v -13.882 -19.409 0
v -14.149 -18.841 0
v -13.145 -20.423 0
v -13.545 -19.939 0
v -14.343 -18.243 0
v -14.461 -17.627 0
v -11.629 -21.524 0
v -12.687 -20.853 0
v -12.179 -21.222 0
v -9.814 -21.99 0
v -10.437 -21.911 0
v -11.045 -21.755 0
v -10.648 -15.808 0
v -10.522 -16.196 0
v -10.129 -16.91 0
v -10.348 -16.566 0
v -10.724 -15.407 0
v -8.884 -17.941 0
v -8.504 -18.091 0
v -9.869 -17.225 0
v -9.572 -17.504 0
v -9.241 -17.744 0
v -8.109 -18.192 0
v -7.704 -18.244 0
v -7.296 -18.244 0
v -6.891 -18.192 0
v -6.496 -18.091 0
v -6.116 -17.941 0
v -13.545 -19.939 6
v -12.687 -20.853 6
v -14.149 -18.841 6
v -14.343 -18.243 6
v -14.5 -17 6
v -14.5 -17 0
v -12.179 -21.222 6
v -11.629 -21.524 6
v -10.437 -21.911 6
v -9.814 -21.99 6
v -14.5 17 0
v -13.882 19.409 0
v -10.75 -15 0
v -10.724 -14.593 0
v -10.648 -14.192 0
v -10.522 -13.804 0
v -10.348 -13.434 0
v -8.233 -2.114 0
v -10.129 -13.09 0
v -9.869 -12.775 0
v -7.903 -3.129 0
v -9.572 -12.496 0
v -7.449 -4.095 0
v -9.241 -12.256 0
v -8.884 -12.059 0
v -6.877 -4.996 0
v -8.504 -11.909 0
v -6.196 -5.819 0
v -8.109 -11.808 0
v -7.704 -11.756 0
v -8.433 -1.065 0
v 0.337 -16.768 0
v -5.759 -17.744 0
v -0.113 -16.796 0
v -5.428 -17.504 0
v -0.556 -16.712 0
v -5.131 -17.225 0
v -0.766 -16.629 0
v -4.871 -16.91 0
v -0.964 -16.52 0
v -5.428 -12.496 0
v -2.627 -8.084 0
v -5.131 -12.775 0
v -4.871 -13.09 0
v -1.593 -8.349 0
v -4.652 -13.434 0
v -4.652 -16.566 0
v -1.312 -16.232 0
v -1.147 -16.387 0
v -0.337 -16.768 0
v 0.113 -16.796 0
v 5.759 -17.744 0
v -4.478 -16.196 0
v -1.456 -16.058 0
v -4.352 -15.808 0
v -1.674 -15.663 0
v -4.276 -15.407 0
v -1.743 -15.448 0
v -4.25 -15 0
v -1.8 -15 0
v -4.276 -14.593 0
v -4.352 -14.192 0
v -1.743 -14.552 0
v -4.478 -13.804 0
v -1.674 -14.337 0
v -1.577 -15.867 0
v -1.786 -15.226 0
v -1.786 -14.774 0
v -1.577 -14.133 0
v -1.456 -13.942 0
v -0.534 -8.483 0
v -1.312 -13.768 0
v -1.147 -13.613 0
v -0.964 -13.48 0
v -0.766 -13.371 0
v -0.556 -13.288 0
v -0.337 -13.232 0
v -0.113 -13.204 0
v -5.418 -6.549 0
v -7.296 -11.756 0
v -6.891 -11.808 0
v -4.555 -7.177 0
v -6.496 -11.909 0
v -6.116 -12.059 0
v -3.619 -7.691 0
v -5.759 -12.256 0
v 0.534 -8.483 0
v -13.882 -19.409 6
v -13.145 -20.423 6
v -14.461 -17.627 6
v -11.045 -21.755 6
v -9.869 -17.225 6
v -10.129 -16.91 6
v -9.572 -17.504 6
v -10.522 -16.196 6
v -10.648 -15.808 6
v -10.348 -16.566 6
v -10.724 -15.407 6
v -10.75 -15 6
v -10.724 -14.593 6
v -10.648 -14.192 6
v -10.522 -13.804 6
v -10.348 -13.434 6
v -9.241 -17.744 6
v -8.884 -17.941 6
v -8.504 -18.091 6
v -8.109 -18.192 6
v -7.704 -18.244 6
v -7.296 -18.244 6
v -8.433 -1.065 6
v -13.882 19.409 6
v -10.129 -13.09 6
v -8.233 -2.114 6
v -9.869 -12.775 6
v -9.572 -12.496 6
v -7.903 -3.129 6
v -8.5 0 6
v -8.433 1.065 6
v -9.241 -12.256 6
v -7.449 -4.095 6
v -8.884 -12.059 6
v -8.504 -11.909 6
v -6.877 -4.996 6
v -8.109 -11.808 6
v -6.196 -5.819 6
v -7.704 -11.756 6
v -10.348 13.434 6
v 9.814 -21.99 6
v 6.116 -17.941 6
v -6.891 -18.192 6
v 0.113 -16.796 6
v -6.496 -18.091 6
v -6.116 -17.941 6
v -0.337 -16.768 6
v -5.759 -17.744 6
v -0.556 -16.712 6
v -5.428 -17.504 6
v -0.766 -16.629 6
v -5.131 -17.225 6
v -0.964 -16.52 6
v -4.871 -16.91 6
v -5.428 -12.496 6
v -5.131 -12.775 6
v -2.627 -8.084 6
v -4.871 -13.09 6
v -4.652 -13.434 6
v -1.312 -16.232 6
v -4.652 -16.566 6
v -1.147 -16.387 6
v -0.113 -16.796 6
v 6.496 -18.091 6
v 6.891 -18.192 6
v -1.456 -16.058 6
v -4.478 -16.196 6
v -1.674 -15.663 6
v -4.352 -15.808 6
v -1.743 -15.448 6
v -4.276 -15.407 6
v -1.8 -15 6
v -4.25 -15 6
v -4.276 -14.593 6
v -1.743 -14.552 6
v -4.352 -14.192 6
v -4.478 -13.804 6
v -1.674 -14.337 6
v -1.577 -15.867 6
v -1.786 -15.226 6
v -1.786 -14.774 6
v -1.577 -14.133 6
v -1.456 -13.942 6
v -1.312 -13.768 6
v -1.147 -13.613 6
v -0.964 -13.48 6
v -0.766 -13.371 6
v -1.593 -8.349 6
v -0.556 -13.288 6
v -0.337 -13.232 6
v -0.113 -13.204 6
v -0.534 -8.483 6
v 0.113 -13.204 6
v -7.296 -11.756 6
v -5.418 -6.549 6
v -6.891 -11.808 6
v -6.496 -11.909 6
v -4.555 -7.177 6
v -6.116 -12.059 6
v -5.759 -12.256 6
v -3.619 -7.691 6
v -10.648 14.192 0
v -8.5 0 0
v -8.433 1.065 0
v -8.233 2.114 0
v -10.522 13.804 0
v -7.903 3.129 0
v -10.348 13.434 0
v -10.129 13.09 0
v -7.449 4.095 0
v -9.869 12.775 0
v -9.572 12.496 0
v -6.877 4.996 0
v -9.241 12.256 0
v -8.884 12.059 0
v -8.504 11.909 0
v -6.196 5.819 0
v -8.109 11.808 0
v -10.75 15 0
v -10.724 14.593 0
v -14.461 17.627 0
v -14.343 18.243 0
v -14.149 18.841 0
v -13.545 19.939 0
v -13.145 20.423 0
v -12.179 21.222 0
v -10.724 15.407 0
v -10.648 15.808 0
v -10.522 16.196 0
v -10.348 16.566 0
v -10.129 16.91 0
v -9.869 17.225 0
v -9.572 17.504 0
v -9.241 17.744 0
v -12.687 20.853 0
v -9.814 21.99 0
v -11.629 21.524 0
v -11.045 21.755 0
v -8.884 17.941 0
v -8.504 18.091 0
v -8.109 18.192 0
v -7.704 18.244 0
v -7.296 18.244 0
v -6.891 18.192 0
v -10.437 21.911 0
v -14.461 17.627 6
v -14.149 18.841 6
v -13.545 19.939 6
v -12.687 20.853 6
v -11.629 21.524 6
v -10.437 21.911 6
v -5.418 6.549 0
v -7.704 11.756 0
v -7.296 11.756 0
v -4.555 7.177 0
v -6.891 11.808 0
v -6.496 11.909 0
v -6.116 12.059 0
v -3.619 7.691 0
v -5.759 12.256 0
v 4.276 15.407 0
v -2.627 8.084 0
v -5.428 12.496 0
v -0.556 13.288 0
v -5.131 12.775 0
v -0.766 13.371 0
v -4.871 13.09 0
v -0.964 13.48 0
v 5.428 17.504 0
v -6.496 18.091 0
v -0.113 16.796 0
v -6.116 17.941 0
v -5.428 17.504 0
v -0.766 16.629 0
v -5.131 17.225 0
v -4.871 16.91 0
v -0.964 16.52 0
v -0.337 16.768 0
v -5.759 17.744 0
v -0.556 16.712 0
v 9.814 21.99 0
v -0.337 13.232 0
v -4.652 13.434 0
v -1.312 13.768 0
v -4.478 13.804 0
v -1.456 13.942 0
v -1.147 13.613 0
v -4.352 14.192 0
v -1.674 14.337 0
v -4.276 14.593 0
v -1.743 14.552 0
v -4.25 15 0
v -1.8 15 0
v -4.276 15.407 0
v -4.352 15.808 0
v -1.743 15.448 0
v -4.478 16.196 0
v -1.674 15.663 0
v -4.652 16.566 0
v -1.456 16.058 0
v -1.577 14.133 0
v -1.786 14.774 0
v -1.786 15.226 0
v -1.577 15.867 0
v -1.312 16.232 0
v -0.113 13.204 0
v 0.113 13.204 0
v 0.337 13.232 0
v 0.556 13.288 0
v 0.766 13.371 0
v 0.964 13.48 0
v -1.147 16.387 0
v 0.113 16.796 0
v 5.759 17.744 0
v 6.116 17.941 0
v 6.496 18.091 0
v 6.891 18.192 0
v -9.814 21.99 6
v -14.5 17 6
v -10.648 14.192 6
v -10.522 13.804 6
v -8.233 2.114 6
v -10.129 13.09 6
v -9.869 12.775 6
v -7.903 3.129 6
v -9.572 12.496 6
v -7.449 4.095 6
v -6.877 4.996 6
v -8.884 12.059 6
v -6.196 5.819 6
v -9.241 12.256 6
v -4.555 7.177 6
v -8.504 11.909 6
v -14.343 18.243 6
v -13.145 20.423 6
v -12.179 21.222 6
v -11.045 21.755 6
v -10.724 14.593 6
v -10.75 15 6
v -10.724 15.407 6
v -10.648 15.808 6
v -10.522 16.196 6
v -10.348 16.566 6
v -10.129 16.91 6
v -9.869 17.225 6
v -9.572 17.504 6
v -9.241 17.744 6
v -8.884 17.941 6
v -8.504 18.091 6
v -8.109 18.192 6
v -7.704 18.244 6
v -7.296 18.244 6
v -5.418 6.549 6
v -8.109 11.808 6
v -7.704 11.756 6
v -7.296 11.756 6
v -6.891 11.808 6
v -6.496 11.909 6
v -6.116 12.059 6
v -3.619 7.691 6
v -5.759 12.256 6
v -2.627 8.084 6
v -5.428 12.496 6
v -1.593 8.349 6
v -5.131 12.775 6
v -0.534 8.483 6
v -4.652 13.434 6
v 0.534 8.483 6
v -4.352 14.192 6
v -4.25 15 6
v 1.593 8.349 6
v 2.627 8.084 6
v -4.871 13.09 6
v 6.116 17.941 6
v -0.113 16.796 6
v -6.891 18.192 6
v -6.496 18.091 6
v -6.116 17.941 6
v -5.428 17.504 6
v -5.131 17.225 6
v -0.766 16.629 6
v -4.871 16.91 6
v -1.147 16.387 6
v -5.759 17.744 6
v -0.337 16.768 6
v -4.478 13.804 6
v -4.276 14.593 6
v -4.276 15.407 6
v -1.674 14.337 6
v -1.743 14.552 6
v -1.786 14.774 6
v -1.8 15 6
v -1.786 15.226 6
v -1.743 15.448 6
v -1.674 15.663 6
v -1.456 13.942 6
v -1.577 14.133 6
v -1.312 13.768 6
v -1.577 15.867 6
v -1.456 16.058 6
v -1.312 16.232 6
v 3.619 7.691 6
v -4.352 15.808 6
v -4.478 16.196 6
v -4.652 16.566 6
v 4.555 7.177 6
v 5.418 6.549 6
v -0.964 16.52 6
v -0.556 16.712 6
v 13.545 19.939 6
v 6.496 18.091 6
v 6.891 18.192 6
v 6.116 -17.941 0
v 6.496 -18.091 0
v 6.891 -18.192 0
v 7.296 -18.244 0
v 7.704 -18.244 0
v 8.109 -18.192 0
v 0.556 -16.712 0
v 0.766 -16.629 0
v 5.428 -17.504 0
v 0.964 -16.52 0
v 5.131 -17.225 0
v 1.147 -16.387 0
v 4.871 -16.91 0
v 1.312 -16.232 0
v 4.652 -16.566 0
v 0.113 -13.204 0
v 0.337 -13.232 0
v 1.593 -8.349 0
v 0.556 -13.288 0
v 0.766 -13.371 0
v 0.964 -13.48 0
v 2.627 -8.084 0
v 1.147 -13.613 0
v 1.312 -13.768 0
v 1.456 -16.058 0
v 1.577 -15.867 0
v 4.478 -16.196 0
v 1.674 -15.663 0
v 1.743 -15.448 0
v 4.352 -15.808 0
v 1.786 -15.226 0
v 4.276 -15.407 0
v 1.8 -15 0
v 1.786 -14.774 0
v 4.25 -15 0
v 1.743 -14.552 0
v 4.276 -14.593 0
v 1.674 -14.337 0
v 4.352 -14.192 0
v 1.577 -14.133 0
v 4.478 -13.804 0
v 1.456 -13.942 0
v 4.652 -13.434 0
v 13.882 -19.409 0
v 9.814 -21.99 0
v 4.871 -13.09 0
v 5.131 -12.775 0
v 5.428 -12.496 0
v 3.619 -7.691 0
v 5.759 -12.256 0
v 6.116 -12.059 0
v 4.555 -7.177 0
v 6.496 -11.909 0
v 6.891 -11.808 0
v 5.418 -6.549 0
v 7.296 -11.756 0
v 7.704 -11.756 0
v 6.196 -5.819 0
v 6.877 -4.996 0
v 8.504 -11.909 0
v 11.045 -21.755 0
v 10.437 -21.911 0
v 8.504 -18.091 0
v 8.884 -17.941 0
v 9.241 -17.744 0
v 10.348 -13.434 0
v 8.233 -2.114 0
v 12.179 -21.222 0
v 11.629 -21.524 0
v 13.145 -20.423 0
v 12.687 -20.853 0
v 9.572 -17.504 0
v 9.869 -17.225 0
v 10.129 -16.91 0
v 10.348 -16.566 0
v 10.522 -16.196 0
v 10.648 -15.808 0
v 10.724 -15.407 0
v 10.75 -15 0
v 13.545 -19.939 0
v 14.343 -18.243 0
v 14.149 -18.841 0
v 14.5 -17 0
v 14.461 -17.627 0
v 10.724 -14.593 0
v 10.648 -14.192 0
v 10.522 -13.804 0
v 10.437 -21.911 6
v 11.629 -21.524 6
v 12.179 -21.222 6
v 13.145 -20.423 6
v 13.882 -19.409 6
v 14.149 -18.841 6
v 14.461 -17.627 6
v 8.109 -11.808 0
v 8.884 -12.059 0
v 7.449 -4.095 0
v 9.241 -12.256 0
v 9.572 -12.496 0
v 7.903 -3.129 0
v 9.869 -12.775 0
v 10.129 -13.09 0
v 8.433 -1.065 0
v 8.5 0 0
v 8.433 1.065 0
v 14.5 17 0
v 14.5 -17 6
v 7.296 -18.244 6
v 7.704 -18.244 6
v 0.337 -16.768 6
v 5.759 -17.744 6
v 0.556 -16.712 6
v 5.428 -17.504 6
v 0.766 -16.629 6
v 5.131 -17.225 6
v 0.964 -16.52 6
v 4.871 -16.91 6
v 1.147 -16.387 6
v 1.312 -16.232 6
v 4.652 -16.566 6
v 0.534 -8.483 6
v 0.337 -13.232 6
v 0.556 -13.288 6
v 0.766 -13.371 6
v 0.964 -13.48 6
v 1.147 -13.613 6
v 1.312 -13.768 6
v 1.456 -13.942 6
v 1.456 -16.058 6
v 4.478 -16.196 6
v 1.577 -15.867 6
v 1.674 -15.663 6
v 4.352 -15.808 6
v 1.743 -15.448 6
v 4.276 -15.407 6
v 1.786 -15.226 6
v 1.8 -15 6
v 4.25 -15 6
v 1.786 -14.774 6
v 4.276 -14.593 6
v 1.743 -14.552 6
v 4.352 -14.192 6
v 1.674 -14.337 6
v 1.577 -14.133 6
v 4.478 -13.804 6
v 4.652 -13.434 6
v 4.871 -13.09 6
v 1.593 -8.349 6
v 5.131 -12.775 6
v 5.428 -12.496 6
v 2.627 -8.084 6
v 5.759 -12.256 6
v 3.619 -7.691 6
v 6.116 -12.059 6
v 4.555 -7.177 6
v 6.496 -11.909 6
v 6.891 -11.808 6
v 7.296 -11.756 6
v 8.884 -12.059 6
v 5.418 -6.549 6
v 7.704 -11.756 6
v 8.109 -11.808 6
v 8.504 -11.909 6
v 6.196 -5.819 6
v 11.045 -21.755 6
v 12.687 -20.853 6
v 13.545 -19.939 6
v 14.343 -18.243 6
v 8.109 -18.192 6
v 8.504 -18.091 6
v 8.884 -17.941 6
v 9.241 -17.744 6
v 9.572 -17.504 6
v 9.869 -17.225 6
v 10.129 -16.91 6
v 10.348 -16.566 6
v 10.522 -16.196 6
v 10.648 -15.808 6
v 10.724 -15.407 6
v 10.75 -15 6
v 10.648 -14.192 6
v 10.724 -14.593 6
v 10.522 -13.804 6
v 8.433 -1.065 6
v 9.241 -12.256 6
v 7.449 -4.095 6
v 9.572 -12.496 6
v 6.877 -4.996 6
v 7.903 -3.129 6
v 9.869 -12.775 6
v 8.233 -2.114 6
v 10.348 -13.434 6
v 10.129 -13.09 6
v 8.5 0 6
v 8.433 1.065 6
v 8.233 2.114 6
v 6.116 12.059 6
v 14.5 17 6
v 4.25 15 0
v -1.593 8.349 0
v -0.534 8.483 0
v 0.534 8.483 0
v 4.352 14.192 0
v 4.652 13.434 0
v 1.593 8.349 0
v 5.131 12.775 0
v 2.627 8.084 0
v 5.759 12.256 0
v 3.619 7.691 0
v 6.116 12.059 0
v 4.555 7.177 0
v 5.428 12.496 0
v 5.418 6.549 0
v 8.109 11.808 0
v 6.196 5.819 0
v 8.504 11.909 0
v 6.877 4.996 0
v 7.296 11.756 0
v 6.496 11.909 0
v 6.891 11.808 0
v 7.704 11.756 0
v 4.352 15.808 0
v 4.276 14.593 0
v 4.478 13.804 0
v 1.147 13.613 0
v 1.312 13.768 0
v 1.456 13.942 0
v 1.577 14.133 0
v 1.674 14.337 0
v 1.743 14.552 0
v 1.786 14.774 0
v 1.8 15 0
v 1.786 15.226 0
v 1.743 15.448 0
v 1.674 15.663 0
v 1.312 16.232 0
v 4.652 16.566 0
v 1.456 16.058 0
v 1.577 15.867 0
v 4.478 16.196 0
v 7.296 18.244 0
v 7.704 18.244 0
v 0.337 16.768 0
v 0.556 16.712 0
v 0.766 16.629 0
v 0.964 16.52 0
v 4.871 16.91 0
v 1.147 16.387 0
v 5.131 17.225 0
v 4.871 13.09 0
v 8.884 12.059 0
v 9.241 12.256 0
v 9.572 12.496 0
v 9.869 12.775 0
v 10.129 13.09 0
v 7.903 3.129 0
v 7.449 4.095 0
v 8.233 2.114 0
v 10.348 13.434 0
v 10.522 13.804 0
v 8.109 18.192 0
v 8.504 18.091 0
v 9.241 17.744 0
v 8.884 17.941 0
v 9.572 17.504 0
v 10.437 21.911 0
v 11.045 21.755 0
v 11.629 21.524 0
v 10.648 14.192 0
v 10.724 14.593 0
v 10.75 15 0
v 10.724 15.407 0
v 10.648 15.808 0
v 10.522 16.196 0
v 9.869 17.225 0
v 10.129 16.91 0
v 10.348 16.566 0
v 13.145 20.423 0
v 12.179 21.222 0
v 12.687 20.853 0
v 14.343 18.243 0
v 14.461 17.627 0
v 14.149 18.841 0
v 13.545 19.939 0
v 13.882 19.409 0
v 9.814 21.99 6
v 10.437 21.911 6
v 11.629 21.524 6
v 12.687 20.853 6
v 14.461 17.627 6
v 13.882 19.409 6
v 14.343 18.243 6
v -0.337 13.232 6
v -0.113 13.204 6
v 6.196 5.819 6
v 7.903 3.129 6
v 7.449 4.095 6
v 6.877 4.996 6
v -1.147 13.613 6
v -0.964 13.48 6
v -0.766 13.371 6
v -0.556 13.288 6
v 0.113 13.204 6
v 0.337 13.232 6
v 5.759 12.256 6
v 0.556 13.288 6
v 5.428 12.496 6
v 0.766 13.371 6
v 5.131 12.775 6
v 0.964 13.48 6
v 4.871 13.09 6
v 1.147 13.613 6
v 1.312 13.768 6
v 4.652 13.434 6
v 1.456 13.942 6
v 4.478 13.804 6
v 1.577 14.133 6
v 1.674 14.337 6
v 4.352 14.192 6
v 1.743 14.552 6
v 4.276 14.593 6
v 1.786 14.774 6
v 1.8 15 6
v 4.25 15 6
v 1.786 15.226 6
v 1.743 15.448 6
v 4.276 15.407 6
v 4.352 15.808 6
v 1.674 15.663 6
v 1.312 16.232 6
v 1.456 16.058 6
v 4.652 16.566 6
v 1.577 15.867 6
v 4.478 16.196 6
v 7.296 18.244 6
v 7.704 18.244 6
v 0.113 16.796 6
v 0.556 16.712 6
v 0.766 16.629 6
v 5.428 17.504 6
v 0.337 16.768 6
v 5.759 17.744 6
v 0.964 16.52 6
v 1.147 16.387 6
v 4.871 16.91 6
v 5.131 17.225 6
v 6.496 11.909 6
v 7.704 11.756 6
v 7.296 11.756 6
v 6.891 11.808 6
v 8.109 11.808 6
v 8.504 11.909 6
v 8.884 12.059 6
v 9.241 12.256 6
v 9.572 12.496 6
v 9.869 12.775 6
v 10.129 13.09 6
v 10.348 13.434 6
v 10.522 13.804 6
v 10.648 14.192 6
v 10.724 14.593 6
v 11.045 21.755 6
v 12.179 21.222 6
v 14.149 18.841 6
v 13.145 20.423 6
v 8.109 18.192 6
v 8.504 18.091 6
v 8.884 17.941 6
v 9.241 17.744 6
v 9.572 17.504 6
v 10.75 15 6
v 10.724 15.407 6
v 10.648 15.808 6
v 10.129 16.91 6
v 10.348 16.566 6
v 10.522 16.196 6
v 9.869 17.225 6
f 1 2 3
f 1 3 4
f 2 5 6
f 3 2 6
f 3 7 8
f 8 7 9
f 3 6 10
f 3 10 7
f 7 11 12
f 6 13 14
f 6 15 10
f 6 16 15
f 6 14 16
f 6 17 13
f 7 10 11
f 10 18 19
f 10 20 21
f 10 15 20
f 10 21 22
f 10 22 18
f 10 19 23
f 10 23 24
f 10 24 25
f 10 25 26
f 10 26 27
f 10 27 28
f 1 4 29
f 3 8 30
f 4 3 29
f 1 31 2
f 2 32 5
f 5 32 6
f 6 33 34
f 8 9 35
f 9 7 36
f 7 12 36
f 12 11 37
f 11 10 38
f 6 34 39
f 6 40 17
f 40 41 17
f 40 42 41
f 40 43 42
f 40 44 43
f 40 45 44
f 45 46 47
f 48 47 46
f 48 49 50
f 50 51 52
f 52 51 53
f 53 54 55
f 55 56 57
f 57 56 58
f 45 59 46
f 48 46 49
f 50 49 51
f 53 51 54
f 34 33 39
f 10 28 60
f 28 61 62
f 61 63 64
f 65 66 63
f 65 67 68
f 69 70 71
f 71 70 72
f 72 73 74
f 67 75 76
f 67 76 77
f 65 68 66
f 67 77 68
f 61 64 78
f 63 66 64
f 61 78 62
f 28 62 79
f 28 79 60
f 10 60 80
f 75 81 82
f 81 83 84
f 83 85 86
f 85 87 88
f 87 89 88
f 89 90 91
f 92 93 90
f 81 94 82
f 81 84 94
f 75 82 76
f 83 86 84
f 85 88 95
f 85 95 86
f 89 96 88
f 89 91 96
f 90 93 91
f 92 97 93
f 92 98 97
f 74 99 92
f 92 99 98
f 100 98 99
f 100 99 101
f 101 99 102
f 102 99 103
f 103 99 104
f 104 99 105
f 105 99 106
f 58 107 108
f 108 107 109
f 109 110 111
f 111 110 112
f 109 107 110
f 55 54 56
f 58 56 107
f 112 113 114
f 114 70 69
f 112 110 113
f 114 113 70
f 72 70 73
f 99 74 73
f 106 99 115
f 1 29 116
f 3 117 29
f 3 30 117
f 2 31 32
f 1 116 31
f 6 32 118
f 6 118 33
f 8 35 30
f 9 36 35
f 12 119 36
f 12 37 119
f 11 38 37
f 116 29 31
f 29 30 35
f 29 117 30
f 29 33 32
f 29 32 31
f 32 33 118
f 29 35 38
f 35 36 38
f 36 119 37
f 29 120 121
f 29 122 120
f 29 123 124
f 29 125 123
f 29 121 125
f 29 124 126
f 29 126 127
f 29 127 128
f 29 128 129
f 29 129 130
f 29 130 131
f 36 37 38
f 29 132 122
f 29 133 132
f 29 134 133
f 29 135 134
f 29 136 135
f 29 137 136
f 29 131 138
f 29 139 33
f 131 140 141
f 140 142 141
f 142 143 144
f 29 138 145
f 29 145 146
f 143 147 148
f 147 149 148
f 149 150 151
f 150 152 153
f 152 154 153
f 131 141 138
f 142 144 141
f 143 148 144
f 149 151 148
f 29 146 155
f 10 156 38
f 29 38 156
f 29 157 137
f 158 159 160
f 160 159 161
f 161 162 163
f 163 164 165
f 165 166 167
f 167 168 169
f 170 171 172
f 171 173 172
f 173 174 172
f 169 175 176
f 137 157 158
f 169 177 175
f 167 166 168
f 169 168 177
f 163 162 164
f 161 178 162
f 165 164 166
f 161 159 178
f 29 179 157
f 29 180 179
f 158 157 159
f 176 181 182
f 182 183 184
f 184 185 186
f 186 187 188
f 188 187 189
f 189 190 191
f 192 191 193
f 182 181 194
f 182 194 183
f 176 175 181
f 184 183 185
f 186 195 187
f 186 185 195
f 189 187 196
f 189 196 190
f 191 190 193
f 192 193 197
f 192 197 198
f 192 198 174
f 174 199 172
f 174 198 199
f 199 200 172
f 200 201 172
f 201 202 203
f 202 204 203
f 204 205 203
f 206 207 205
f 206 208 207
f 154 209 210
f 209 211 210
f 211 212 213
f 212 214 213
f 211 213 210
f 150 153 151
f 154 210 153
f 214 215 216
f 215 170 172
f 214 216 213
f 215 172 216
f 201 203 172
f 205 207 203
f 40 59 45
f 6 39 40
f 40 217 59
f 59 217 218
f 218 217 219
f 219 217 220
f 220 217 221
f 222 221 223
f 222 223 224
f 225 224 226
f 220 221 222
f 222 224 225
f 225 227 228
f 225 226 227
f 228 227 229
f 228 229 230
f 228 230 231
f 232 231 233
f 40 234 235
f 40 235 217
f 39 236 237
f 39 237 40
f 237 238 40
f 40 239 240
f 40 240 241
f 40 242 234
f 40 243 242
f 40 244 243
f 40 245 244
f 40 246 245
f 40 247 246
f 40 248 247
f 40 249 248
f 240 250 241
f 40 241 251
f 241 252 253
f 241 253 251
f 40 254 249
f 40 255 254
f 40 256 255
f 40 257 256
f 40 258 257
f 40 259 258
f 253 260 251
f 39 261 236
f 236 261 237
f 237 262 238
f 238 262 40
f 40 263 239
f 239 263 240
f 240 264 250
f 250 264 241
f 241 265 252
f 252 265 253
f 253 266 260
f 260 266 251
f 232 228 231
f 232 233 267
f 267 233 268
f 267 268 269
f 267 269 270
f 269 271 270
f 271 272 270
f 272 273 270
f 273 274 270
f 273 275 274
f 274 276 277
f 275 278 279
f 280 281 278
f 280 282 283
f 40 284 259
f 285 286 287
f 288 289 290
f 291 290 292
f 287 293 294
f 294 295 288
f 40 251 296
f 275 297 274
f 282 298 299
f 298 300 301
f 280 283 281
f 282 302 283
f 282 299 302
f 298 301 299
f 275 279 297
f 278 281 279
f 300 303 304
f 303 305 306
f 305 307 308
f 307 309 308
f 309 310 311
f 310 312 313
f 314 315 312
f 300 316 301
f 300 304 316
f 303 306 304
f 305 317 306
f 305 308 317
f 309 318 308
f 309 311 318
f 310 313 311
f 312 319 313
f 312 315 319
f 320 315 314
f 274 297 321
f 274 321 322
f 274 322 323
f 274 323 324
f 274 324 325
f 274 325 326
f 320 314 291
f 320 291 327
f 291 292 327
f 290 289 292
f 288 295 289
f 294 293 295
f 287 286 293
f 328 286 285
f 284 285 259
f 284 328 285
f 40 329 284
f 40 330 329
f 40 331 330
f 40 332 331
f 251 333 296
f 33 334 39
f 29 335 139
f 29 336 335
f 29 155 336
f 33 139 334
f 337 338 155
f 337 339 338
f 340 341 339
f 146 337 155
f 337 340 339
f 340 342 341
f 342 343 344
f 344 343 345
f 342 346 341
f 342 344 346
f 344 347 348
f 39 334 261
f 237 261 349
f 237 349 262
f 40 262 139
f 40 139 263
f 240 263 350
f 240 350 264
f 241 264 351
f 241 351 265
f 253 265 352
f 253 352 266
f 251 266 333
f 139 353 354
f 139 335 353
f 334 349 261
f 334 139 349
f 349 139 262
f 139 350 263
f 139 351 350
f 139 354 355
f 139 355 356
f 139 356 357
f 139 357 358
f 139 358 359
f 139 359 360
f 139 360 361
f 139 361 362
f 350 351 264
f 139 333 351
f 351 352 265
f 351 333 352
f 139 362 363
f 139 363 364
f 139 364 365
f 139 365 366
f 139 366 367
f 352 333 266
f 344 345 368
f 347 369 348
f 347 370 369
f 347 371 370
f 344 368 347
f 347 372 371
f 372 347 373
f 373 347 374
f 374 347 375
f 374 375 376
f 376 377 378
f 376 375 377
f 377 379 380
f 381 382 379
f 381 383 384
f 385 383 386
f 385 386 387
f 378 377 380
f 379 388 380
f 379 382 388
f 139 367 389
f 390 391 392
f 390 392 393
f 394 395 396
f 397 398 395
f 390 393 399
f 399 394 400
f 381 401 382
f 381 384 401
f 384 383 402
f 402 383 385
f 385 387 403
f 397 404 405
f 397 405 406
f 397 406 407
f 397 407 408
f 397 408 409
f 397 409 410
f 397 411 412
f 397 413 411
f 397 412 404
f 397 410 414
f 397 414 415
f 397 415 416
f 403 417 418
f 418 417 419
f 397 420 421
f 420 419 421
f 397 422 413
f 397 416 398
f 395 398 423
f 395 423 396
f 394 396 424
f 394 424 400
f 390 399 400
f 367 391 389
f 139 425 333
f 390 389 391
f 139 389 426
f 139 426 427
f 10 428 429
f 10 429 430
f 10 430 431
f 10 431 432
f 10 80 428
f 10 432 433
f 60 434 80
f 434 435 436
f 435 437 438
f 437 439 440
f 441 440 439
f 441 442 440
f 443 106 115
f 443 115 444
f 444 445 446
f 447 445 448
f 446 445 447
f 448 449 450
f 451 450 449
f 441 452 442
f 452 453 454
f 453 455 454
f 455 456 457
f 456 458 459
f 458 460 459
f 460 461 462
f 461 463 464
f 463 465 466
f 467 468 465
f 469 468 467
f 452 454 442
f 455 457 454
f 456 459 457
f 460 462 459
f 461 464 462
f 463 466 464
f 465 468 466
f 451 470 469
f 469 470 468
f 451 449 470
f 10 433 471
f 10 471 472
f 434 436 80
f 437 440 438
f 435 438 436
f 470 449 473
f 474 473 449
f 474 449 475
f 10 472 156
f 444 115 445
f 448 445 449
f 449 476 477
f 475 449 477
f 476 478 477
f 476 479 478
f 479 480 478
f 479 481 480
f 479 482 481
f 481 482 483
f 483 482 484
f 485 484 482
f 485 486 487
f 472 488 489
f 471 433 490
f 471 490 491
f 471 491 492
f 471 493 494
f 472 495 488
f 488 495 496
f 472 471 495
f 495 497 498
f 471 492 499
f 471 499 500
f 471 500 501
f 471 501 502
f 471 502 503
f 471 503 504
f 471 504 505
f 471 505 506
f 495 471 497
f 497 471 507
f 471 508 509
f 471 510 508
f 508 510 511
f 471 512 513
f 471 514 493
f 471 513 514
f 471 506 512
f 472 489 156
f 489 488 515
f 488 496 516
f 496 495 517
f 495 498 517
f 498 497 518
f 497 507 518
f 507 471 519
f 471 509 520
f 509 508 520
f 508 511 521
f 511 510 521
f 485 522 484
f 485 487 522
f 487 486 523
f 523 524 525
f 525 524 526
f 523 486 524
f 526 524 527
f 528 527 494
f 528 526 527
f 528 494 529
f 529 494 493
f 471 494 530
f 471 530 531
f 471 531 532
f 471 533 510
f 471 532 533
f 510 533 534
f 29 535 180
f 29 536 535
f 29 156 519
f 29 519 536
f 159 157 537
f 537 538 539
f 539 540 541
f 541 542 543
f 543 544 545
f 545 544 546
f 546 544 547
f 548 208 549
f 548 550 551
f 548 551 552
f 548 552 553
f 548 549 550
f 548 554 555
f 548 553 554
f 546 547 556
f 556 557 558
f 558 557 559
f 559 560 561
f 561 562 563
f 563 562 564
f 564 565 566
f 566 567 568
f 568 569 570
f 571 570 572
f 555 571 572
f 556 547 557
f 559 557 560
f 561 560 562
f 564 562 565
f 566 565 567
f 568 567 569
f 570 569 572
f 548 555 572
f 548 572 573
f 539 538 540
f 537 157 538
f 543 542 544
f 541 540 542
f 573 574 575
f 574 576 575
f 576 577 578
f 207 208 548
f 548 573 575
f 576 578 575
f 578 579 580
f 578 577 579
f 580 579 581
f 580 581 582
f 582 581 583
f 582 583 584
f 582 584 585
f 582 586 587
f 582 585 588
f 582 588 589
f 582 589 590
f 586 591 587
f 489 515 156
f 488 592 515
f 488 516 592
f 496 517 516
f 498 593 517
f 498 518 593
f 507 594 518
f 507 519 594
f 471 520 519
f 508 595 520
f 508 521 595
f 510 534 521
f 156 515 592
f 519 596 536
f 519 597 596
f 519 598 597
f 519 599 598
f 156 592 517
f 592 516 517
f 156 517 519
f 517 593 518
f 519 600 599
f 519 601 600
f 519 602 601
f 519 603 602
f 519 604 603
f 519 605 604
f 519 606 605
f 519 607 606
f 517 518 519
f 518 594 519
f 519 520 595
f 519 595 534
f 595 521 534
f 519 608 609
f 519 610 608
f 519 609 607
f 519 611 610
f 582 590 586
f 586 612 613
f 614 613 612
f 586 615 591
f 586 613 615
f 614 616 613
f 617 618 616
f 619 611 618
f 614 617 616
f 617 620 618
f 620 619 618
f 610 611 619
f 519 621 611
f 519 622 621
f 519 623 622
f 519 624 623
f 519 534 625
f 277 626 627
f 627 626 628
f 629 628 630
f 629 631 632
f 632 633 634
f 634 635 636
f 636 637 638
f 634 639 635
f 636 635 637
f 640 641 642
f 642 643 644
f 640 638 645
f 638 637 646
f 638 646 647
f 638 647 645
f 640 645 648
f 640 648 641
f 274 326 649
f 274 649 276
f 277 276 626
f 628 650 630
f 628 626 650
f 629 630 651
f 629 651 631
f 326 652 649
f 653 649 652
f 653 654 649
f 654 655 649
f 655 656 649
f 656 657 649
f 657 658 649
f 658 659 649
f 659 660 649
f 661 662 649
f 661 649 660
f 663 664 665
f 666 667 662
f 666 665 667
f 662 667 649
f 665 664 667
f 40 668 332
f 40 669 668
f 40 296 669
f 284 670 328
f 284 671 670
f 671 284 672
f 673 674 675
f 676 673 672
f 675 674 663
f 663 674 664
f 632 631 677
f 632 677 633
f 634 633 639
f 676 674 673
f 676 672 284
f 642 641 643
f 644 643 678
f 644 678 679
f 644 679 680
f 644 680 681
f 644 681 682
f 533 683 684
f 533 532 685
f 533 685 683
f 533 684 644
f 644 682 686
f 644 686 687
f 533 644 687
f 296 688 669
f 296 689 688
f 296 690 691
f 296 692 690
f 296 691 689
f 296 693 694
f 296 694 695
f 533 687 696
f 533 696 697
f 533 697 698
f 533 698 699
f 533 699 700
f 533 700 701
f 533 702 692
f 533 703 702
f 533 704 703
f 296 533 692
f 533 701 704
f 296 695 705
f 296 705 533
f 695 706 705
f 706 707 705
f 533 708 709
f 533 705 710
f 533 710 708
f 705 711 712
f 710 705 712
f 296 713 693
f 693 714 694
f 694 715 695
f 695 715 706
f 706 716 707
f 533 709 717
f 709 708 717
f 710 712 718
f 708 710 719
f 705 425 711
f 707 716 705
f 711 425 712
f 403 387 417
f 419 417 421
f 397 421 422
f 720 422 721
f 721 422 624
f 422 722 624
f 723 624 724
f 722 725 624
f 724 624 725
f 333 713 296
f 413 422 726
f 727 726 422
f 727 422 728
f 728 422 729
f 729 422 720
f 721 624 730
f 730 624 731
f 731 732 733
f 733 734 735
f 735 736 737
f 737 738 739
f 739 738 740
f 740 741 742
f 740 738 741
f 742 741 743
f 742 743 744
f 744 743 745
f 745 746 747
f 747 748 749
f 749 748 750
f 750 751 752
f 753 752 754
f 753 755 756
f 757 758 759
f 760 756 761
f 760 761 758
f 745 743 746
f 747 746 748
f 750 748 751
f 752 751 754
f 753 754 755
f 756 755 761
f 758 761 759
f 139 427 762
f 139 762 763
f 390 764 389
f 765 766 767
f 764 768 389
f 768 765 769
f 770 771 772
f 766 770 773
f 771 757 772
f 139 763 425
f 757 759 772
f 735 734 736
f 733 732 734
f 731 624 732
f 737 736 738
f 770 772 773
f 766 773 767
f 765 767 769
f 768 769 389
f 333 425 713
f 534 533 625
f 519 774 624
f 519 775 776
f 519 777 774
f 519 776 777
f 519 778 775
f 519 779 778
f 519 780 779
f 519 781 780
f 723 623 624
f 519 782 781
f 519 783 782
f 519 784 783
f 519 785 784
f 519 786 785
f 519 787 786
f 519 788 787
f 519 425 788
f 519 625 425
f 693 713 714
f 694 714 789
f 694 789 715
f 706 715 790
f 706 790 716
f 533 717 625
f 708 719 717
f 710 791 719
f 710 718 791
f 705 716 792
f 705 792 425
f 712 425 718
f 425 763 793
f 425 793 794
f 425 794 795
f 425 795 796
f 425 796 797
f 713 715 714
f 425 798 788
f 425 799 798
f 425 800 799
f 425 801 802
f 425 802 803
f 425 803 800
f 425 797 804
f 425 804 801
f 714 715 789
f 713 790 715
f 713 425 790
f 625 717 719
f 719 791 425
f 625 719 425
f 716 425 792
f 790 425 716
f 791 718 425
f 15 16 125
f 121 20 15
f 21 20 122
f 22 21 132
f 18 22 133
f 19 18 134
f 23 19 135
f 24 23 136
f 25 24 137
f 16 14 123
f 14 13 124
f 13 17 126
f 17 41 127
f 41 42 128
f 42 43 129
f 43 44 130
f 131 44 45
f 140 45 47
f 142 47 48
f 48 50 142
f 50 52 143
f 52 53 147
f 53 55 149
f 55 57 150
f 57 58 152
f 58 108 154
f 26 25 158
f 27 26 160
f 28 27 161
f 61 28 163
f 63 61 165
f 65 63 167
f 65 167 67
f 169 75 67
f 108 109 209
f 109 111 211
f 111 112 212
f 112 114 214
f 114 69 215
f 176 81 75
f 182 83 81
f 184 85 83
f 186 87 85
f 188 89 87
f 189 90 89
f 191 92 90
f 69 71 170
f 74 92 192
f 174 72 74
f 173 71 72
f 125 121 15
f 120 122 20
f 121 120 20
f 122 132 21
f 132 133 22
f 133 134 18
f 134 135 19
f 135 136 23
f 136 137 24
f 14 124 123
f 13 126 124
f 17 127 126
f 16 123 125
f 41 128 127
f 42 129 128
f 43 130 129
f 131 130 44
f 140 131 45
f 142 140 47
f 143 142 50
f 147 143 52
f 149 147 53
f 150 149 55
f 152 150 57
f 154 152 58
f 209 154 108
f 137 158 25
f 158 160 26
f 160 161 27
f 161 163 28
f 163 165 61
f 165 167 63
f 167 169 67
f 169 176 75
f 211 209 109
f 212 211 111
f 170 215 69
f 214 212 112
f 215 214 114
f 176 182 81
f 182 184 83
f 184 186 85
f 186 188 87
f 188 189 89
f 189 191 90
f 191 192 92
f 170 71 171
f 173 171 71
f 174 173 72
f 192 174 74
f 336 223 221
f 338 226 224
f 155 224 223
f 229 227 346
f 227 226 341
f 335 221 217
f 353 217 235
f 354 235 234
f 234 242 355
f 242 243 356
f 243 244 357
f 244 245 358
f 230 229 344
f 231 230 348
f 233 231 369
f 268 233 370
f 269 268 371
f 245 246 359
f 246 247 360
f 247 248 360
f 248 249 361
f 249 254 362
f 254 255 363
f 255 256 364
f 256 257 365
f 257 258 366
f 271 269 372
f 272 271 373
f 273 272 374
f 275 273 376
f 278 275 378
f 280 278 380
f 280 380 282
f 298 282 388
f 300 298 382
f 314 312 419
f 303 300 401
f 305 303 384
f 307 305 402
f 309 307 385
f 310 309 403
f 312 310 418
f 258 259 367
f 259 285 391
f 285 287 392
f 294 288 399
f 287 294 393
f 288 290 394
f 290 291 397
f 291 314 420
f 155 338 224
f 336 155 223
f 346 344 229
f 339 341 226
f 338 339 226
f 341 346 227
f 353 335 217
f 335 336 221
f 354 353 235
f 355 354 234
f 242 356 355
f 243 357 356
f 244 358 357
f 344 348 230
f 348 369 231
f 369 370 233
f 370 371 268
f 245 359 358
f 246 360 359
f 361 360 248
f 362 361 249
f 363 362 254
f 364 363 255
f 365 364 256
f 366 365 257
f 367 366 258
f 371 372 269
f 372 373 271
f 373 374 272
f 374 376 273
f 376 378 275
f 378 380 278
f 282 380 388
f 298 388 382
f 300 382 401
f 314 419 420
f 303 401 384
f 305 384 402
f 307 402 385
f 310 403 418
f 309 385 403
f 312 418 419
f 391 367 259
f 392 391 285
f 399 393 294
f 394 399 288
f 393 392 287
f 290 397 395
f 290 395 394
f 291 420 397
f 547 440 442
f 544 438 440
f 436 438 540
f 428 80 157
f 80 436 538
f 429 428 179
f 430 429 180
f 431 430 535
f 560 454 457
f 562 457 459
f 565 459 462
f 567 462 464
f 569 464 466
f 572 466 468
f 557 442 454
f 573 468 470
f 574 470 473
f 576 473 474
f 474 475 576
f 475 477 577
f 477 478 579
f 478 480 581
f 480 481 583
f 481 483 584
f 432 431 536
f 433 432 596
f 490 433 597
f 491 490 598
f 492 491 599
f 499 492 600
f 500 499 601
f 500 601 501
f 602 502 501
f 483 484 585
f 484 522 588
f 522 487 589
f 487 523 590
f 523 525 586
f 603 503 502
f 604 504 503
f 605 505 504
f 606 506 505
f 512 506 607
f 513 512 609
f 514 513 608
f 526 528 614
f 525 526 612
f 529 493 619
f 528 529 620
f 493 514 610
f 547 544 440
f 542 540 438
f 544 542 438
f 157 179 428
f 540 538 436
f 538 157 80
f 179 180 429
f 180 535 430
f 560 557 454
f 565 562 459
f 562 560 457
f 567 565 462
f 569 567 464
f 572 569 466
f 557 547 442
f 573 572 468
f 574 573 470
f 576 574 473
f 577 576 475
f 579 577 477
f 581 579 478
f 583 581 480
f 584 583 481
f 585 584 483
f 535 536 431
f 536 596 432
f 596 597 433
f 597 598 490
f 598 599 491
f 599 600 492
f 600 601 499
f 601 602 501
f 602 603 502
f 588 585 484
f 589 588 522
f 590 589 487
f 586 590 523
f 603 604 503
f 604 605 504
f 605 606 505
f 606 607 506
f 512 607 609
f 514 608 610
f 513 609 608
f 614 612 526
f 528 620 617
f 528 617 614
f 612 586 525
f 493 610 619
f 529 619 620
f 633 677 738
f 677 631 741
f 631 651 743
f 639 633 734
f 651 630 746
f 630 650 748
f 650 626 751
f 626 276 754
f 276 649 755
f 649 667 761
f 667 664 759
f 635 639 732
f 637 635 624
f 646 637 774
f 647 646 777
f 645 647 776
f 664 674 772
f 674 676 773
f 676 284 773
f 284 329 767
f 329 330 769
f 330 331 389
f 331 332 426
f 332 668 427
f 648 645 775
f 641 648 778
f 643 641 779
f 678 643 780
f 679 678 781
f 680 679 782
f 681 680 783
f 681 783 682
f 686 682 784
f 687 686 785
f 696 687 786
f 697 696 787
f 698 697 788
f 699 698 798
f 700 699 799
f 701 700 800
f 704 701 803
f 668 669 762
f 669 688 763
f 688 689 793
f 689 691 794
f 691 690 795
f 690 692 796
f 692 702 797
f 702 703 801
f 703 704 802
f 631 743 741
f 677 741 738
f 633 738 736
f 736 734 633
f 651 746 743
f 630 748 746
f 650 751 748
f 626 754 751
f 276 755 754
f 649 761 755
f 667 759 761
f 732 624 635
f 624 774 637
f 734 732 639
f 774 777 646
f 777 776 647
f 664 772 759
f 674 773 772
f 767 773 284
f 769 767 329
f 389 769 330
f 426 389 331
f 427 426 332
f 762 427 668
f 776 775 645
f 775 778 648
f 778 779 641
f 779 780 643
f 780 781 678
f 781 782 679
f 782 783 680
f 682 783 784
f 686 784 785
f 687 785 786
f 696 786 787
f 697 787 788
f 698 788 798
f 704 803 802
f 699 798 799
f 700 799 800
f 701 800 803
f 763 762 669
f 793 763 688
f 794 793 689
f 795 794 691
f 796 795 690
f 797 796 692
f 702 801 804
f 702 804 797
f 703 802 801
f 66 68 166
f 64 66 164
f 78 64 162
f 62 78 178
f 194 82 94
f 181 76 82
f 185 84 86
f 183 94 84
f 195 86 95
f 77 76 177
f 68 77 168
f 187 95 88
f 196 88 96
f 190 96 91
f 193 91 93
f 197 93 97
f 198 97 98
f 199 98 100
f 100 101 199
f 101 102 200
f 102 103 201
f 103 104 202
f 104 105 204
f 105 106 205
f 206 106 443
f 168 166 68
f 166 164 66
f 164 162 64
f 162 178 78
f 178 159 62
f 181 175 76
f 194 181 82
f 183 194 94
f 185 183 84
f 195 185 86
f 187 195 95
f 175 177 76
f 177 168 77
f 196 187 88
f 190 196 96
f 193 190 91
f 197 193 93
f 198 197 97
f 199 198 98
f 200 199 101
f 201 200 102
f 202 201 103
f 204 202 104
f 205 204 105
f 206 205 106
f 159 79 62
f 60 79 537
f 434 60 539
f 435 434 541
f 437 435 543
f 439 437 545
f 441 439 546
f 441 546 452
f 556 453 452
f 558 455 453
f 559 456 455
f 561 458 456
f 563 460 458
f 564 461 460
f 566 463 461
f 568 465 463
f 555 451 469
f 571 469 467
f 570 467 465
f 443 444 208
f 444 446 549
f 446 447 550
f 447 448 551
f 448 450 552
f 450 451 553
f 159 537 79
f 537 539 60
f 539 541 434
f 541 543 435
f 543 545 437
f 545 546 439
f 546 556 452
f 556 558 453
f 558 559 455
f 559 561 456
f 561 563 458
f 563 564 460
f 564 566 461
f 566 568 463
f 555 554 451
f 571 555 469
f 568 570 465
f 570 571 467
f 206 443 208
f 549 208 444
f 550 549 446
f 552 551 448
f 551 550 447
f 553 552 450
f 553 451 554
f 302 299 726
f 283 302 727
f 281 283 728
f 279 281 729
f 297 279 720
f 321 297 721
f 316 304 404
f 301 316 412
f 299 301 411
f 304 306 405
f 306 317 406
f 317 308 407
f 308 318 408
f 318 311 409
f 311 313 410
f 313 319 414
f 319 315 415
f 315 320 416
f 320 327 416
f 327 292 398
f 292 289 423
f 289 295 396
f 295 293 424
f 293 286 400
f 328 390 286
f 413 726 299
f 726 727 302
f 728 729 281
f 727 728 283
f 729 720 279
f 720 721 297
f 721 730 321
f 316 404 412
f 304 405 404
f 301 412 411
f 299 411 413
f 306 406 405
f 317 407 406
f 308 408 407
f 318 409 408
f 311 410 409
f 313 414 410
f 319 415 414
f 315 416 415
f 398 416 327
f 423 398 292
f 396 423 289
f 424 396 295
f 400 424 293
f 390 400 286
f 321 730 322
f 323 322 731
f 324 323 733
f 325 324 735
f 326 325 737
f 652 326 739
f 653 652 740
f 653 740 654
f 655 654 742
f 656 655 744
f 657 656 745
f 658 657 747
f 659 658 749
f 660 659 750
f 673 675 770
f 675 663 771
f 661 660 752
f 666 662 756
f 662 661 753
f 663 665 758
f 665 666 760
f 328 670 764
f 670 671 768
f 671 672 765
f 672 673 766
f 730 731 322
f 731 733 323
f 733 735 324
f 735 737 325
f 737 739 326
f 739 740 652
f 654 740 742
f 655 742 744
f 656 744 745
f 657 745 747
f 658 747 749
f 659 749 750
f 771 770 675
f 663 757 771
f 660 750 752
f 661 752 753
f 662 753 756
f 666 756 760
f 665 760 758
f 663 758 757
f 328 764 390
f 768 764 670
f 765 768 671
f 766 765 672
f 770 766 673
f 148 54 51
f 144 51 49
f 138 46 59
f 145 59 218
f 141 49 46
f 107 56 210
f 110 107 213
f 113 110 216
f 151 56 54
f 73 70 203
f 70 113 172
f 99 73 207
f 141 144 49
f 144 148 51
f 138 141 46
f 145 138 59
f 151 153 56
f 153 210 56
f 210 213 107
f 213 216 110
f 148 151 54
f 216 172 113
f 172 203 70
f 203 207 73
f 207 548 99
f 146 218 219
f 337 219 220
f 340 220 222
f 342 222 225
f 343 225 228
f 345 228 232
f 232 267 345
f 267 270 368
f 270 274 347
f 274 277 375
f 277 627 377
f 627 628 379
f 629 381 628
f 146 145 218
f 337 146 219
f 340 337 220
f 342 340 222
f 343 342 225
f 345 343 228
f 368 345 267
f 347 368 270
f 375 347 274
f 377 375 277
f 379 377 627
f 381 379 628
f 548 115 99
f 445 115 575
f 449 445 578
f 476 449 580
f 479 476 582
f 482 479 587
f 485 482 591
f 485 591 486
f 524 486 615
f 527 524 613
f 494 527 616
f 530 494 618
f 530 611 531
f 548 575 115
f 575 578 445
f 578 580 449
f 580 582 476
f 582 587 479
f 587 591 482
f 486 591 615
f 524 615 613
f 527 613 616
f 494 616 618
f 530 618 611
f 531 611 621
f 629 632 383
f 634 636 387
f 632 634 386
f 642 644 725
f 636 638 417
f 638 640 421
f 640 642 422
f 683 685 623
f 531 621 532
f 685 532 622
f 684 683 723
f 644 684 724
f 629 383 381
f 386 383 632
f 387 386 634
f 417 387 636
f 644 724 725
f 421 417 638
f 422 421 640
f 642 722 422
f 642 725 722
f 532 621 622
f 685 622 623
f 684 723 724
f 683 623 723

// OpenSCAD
$fn = 50;

difference() {
	union() {
		hull() {
			translate(v = [-9.5, 17.0, 0]) {
				cylinder(h = 6, r = 5);
			}
			translate(v = [9.5, 17.0, 0]) {
				cylinder(h = 6, r = 5);
			}
			translate(v = [-9.5, -17.0, 0]) {
				cylinder(h = 6, r = 5);
			}
			translate(v = [9.5, -17.0, 0]) {
				cylinder(h = 6, r = 5);
			}
		}
	}
	union() {
		translate(v = [-7.5, -15.0, 0]) {
			cylinder(h = 6, r = 3.25);
		}
		translate(v = [-7.5, 15.0, 0]) {
			cylinder(h = 6, r = 3.25);
		}
		translate(v = [7.5, -15.0, 0]) {
			cylinder(h = 6, r = 3.25);
		}
		translate(v = [7.5, 15.0, 0]) {
			cylinder(h = 6, r = 3.25);
		}
		translate(v = [0.0, -15.0, 0]) {
			cylinder(h = 6, r = 1.8);
		}
		translate(v = [0.0, 15.0, 0]) {
			cylinder(h = 6, r = 1.8);
		}
		cylinder(h = 6, r = 8.5);
	}
}
